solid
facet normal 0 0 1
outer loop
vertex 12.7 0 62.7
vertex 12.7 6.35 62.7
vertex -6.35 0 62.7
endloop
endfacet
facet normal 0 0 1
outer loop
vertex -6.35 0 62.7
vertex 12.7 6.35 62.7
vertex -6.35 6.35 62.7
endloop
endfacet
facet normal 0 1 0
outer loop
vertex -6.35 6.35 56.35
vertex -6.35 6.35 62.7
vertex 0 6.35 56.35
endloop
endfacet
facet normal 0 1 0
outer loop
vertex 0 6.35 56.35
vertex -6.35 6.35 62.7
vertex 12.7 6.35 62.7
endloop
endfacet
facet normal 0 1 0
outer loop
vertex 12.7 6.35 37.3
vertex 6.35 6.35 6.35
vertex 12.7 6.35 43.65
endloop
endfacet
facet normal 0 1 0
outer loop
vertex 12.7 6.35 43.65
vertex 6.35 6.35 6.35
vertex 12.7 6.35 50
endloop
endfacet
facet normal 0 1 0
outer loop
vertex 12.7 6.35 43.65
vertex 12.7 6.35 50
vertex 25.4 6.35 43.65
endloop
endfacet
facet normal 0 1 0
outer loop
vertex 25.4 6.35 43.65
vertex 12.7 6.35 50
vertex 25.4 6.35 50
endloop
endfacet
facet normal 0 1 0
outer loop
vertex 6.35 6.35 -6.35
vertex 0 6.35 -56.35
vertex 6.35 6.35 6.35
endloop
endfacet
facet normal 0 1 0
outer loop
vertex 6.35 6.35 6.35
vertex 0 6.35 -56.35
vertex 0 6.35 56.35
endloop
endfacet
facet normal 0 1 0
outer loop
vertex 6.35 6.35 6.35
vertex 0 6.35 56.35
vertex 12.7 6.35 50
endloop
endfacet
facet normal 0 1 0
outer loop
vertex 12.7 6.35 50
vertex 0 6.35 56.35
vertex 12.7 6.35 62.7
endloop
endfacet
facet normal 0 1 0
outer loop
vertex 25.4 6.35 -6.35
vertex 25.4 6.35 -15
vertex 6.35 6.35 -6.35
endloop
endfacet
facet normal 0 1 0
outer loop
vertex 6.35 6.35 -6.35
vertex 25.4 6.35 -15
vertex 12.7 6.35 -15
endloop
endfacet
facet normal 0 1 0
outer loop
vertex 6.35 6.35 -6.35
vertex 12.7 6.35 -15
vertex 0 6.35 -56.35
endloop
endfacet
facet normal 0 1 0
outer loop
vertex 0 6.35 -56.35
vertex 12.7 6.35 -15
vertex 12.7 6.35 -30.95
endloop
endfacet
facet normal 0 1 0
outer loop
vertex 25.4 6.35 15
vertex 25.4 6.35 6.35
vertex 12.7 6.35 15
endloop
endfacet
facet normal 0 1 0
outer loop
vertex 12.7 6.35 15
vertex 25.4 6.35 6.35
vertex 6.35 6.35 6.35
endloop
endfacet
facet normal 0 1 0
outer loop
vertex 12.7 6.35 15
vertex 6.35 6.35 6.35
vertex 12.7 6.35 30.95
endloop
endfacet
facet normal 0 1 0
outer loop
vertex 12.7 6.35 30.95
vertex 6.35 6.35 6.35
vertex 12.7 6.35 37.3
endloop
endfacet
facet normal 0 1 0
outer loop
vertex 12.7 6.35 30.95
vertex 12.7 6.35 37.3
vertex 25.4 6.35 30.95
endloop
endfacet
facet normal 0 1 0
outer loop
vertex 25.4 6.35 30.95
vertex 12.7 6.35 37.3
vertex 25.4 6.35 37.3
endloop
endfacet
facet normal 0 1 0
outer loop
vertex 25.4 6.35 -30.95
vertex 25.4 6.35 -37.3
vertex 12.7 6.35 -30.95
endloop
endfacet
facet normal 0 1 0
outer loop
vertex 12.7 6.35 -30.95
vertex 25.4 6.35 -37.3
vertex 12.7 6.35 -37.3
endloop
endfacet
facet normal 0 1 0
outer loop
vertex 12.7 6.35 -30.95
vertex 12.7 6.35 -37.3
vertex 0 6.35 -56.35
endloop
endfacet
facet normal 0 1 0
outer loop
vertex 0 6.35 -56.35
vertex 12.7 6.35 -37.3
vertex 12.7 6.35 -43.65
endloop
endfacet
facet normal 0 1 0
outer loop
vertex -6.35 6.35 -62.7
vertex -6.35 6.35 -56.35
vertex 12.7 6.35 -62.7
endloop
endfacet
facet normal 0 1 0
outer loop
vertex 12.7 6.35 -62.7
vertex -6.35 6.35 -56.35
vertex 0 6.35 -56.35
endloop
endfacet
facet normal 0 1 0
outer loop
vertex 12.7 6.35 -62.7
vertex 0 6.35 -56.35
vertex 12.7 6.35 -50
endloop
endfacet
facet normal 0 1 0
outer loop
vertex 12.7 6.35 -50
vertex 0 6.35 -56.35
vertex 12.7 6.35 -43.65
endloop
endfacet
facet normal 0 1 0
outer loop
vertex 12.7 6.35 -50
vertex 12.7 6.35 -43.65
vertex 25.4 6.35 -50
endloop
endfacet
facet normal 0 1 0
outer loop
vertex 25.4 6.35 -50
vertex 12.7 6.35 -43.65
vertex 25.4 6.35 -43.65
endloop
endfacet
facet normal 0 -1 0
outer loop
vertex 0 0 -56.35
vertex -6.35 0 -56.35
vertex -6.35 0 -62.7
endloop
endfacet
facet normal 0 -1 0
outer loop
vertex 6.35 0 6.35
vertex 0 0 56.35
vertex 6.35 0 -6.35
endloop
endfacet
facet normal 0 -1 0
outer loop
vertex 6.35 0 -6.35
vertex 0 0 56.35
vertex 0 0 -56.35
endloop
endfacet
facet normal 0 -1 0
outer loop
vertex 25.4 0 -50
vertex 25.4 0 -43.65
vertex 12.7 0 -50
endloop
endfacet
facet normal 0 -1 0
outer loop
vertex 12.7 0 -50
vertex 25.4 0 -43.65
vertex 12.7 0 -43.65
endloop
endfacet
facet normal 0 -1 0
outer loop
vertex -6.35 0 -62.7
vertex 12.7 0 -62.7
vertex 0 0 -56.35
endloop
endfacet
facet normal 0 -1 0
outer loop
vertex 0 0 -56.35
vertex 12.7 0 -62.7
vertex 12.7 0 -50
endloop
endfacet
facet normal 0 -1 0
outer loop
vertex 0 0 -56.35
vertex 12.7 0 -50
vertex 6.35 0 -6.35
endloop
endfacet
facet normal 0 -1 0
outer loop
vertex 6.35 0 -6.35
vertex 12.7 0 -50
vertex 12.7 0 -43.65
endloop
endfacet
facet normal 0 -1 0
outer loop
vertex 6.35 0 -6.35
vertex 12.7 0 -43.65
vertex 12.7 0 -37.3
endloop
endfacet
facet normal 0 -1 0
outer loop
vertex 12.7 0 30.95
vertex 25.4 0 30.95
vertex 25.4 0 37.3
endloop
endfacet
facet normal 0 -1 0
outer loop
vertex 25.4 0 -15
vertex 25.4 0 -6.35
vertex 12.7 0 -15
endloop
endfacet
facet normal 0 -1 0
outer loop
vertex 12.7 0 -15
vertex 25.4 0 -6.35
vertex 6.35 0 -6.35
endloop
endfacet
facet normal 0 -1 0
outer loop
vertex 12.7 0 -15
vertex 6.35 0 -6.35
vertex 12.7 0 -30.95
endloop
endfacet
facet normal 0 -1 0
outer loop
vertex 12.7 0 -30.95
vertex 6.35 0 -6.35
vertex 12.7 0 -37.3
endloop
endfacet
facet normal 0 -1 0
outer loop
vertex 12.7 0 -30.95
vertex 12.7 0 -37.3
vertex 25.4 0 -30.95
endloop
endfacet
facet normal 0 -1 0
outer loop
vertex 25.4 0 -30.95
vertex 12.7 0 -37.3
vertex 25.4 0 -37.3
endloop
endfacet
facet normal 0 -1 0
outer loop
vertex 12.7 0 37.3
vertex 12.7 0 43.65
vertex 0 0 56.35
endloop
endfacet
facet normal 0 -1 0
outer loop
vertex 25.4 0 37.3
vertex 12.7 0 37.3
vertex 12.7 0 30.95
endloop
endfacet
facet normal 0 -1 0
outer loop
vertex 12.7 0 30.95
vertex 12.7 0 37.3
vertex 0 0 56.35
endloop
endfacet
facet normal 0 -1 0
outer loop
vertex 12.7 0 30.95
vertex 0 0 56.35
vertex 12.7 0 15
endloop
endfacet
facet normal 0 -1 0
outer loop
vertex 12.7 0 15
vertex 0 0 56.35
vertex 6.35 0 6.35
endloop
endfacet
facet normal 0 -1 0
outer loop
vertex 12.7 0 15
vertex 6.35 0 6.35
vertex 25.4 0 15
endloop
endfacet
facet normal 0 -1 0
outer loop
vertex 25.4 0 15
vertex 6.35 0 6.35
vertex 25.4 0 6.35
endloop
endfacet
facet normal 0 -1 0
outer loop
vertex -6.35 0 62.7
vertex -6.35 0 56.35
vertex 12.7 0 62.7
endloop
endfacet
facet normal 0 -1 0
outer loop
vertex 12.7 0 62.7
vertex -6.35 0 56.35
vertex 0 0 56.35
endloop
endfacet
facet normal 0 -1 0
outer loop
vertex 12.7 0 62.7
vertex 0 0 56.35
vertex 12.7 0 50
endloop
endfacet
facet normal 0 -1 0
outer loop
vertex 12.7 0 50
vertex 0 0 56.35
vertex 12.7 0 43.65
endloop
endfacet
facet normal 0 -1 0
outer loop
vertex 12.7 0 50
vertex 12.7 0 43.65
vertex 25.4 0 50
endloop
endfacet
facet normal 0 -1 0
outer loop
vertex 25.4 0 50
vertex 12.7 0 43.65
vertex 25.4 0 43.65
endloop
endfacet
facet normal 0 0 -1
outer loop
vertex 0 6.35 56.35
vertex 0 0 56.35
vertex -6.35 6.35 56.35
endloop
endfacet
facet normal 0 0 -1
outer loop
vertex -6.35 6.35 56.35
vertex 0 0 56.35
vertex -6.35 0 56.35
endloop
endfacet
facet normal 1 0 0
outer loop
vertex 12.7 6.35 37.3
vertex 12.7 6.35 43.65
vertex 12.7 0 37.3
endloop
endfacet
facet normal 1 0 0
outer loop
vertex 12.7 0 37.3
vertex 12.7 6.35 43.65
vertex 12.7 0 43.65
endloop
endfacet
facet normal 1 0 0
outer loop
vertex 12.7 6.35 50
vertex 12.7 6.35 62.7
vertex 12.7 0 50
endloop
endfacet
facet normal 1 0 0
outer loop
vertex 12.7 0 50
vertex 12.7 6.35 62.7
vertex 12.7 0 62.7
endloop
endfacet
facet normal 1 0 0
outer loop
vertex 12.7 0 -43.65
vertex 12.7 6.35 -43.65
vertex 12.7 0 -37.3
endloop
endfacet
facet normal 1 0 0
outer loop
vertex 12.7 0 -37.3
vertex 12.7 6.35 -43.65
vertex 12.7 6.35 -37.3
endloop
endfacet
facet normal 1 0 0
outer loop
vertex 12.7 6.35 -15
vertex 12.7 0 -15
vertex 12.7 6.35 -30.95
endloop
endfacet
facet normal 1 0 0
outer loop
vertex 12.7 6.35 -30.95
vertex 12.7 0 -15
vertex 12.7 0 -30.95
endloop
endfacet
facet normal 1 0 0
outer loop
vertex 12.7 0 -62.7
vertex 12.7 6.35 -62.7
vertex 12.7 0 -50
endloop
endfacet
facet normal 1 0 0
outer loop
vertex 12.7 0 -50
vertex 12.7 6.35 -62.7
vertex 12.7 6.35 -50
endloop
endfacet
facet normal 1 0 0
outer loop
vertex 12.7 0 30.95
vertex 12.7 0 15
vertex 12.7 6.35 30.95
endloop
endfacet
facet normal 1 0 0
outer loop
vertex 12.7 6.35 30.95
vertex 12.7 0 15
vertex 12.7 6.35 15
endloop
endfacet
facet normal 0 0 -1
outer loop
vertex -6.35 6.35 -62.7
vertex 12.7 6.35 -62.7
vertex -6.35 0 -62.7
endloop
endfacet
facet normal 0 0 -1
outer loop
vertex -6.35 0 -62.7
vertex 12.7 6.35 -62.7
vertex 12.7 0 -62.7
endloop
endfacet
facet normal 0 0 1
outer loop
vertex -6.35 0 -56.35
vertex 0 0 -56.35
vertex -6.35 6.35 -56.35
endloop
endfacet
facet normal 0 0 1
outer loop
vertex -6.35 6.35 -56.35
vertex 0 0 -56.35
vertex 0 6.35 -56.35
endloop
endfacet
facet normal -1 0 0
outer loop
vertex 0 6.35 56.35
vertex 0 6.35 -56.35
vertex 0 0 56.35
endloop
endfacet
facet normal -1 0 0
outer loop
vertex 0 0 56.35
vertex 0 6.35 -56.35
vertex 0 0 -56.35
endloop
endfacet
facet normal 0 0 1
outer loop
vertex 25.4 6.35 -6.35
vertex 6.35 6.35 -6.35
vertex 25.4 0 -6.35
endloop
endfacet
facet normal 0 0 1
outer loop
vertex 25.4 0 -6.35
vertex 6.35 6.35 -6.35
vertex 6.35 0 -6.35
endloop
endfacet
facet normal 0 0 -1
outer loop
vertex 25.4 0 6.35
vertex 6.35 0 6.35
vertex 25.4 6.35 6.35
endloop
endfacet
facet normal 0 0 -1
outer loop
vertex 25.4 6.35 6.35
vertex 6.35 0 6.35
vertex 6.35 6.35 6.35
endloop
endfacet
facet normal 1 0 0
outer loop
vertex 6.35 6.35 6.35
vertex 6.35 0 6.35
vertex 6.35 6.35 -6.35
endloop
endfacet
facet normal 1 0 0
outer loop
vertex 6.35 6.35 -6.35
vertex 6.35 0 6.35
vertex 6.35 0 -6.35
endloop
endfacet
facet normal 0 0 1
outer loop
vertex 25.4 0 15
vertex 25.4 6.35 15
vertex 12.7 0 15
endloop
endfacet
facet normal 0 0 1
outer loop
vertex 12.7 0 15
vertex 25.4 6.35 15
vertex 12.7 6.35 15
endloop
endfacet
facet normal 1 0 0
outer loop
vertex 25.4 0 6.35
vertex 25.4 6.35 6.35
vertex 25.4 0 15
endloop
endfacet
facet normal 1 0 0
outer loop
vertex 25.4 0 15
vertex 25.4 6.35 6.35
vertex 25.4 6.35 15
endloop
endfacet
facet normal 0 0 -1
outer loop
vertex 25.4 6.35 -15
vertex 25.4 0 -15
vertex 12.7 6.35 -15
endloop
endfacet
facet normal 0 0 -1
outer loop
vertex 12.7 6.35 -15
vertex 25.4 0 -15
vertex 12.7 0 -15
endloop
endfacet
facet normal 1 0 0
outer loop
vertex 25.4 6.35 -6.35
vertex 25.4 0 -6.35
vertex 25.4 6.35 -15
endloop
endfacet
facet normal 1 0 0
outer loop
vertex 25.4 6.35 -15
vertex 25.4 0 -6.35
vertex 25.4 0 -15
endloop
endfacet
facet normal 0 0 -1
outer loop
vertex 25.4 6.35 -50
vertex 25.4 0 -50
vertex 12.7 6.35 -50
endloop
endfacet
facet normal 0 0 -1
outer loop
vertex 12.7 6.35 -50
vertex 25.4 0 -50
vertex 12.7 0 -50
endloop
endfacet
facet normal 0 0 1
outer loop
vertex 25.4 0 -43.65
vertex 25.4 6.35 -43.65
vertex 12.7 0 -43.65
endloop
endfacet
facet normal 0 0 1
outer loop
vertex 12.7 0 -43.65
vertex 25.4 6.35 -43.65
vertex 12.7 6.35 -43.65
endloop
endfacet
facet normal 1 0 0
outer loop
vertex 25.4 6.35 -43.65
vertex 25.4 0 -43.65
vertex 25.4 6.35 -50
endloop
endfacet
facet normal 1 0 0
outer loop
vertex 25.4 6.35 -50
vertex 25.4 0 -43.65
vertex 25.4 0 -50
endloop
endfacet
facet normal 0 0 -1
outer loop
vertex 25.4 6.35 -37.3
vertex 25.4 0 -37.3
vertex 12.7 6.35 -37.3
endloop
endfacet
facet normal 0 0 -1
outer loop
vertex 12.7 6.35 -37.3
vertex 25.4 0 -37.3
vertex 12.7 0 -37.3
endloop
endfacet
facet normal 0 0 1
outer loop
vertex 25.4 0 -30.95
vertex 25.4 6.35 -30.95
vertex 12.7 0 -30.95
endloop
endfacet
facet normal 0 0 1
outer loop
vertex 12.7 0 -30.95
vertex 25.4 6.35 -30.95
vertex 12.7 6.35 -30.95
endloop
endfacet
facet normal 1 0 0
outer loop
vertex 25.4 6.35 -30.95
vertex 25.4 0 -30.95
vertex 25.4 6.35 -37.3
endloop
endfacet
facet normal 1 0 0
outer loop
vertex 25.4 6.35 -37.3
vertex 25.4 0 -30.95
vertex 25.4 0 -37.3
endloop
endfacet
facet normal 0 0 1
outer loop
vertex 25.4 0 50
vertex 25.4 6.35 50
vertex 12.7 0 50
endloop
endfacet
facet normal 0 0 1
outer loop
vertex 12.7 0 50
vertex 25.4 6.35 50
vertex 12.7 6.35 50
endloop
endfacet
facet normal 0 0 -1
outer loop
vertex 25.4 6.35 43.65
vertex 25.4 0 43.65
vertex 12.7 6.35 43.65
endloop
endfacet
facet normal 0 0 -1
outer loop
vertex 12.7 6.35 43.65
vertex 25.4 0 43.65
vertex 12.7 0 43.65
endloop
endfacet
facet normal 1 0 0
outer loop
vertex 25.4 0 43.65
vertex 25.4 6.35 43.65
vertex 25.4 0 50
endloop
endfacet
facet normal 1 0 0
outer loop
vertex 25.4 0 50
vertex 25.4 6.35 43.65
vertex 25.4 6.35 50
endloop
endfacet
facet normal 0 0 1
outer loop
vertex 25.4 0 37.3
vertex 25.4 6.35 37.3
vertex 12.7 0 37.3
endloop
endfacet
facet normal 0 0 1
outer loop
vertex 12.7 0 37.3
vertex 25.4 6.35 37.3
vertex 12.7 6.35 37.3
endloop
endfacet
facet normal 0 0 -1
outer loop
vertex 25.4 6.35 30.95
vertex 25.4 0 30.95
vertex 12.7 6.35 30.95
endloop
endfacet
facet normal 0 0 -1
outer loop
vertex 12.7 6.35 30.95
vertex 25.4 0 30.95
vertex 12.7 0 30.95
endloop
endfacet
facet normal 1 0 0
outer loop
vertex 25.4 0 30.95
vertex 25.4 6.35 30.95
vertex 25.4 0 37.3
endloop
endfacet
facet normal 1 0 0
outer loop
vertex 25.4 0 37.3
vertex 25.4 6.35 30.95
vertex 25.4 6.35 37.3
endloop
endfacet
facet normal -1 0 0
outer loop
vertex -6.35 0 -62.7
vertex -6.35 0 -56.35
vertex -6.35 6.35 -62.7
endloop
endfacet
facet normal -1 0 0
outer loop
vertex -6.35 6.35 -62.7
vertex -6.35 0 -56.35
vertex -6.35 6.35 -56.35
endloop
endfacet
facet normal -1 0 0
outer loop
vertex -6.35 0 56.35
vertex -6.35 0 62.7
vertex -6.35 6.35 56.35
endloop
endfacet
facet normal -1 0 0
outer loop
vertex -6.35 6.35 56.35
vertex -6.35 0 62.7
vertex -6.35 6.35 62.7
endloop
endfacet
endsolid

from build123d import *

# Parameters (mm, degrees)
SKETCH1_W           = 25.4
SKETCH1_H           = 125.4
BOSS_EXTRUDE1_DEPTH = 6.35
SKETCH2_W           = 112.7
SKETCH2_H           = 6.35
CUT_EXTRUDE1_DEPTH  = 12.7
SKETCH3_W           = 12.7
SKETCH3_H           = 6.35
CUT_EXTRUDE2_DEPTH  = 6.35
SKETCH4_W           = 8.65
SKETCH4_H           = 6.35
BOSS_EXTRUDE2_DEPTH = 12.7
SKETCH5_W           = 6.35
SKETCH5_H           = 6.35
BOSS_EXTRUDE3_DEPTH = 12.7
SKETCH6_W           = 6.35
SKETCH6_H           = 6.35
BOSS_EXTRUDE4_DEPTH = 12.7
SKETCH10_W          = 6.35
SKETCH10_H          = 6.35
CUT_EXTRUDE3_DEPTH  = 7.35


with BuildPart() as part:
    # Sketch1 → Boss-Extrude1 (new body)
    with BuildSketch(Plane(origin=(0, 0, 0), x_dir=(1, 0, 0), z_dir=(0, 1, 0))):
        Rectangle(SKETCH1_W, SKETCH1_H)
    extrude(amount=BOSS_EXTRUDE1_DEPTH)

    # Sketch2 → Cut-Extrude1 (cut)
    with BuildSketch(Plane.ZY.offset(12.7)):
        with Locations((0, 3.175)):
            Rectangle(SKETCH2_W, SKETCH2_H)
    extrude(amount=-CUT_EXTRUDE1_DEPTH, mode=Mode.SUBTRACT)

    # Sketch3 → Cut-Extrude2 (cut)
    with BuildSketch(Plane(origin=(12.7, 0, 0), x_dir=(0, 0, -1), z_dir=(1, 0, 0))):
        with Locations((0, 3.175)):
            Rectangle(SKETCH3_W, SKETCH3_H)
    extrude(amount=-CUT_EXTRUDE2_DEPTH, mode=Mode.SUBTRACT)

    # Sketch4 → Boss-Extrude2 (add)
    with BuildSketch(Plane(origin=(12.7, 0, 0), x_dir=(0, 0, -1), z_dir=(1, 0, 0))):
        with Locations((-10.675, 3.175)):
            Rectangle(SKETCH4_W, SKETCH4_H)
    boss_extrude2 = extrude(amount=BOSS_EXTRUDE2_DEPTH)

    # Mirror1: Boss-Extrude2 across plane
    add(boss_extrude2.mirror(Plane.XY))

    # Sketch5 → Boss-Extrude3 (add)
    with BuildSketch(Plane(origin=(12.7, 0, 0), x_dir=(0, 0, -1), z_dir=(1, 0, 0))):
        with Locations((46.825, 3.175)):
            Rectangle(SKETCH5_W, SKETCH5_H)
    boss_extrude3 = extrude(amount=BOSS_EXTRUDE3_DEPTH)

    # Sketch6 → Boss-Extrude4 (add)
    with BuildSketch(Plane(origin=(12.7, 0, 0), x_dir=(0, 0, -1), z_dir=(1, 0, 0))):
        with Locations((34.125, 3.175)):
            Rectangle(SKETCH6_W, SKETCH6_H)
    boss_extrude4 = extrude(amount=BOSS_EXTRUDE4_DEPTH)

    # Mirror2: Boss-Extrude3, Boss-Extrude4 across plane
    add(boss_extrude3.mirror(Plane.XY))
    add(boss_extrude4.mirror(Plane.XY))

    # Sketch10 → Cut-Extrude3 (cut, through all)
    with BuildSketch(Plane(origin=(0, 6.35, 0), x_dir=(1, 0, 0), z_dir=(0, 1, 0))):
        with Locations((-9.525, 59.525)):
            Rectangle(SKETCH10_W, SKETCH10_H)
    cut_extrude3 = extrude(amount=-CUT_EXTRUDE3_DEPTH, mode=Mode.SUBTRACT)

    # Mirror3: Cut-Extrude3 across plane
    add(cut_extrude3.mirror(Plane.XY), mode=Mode.SUBTRACT)


solid = part.part
